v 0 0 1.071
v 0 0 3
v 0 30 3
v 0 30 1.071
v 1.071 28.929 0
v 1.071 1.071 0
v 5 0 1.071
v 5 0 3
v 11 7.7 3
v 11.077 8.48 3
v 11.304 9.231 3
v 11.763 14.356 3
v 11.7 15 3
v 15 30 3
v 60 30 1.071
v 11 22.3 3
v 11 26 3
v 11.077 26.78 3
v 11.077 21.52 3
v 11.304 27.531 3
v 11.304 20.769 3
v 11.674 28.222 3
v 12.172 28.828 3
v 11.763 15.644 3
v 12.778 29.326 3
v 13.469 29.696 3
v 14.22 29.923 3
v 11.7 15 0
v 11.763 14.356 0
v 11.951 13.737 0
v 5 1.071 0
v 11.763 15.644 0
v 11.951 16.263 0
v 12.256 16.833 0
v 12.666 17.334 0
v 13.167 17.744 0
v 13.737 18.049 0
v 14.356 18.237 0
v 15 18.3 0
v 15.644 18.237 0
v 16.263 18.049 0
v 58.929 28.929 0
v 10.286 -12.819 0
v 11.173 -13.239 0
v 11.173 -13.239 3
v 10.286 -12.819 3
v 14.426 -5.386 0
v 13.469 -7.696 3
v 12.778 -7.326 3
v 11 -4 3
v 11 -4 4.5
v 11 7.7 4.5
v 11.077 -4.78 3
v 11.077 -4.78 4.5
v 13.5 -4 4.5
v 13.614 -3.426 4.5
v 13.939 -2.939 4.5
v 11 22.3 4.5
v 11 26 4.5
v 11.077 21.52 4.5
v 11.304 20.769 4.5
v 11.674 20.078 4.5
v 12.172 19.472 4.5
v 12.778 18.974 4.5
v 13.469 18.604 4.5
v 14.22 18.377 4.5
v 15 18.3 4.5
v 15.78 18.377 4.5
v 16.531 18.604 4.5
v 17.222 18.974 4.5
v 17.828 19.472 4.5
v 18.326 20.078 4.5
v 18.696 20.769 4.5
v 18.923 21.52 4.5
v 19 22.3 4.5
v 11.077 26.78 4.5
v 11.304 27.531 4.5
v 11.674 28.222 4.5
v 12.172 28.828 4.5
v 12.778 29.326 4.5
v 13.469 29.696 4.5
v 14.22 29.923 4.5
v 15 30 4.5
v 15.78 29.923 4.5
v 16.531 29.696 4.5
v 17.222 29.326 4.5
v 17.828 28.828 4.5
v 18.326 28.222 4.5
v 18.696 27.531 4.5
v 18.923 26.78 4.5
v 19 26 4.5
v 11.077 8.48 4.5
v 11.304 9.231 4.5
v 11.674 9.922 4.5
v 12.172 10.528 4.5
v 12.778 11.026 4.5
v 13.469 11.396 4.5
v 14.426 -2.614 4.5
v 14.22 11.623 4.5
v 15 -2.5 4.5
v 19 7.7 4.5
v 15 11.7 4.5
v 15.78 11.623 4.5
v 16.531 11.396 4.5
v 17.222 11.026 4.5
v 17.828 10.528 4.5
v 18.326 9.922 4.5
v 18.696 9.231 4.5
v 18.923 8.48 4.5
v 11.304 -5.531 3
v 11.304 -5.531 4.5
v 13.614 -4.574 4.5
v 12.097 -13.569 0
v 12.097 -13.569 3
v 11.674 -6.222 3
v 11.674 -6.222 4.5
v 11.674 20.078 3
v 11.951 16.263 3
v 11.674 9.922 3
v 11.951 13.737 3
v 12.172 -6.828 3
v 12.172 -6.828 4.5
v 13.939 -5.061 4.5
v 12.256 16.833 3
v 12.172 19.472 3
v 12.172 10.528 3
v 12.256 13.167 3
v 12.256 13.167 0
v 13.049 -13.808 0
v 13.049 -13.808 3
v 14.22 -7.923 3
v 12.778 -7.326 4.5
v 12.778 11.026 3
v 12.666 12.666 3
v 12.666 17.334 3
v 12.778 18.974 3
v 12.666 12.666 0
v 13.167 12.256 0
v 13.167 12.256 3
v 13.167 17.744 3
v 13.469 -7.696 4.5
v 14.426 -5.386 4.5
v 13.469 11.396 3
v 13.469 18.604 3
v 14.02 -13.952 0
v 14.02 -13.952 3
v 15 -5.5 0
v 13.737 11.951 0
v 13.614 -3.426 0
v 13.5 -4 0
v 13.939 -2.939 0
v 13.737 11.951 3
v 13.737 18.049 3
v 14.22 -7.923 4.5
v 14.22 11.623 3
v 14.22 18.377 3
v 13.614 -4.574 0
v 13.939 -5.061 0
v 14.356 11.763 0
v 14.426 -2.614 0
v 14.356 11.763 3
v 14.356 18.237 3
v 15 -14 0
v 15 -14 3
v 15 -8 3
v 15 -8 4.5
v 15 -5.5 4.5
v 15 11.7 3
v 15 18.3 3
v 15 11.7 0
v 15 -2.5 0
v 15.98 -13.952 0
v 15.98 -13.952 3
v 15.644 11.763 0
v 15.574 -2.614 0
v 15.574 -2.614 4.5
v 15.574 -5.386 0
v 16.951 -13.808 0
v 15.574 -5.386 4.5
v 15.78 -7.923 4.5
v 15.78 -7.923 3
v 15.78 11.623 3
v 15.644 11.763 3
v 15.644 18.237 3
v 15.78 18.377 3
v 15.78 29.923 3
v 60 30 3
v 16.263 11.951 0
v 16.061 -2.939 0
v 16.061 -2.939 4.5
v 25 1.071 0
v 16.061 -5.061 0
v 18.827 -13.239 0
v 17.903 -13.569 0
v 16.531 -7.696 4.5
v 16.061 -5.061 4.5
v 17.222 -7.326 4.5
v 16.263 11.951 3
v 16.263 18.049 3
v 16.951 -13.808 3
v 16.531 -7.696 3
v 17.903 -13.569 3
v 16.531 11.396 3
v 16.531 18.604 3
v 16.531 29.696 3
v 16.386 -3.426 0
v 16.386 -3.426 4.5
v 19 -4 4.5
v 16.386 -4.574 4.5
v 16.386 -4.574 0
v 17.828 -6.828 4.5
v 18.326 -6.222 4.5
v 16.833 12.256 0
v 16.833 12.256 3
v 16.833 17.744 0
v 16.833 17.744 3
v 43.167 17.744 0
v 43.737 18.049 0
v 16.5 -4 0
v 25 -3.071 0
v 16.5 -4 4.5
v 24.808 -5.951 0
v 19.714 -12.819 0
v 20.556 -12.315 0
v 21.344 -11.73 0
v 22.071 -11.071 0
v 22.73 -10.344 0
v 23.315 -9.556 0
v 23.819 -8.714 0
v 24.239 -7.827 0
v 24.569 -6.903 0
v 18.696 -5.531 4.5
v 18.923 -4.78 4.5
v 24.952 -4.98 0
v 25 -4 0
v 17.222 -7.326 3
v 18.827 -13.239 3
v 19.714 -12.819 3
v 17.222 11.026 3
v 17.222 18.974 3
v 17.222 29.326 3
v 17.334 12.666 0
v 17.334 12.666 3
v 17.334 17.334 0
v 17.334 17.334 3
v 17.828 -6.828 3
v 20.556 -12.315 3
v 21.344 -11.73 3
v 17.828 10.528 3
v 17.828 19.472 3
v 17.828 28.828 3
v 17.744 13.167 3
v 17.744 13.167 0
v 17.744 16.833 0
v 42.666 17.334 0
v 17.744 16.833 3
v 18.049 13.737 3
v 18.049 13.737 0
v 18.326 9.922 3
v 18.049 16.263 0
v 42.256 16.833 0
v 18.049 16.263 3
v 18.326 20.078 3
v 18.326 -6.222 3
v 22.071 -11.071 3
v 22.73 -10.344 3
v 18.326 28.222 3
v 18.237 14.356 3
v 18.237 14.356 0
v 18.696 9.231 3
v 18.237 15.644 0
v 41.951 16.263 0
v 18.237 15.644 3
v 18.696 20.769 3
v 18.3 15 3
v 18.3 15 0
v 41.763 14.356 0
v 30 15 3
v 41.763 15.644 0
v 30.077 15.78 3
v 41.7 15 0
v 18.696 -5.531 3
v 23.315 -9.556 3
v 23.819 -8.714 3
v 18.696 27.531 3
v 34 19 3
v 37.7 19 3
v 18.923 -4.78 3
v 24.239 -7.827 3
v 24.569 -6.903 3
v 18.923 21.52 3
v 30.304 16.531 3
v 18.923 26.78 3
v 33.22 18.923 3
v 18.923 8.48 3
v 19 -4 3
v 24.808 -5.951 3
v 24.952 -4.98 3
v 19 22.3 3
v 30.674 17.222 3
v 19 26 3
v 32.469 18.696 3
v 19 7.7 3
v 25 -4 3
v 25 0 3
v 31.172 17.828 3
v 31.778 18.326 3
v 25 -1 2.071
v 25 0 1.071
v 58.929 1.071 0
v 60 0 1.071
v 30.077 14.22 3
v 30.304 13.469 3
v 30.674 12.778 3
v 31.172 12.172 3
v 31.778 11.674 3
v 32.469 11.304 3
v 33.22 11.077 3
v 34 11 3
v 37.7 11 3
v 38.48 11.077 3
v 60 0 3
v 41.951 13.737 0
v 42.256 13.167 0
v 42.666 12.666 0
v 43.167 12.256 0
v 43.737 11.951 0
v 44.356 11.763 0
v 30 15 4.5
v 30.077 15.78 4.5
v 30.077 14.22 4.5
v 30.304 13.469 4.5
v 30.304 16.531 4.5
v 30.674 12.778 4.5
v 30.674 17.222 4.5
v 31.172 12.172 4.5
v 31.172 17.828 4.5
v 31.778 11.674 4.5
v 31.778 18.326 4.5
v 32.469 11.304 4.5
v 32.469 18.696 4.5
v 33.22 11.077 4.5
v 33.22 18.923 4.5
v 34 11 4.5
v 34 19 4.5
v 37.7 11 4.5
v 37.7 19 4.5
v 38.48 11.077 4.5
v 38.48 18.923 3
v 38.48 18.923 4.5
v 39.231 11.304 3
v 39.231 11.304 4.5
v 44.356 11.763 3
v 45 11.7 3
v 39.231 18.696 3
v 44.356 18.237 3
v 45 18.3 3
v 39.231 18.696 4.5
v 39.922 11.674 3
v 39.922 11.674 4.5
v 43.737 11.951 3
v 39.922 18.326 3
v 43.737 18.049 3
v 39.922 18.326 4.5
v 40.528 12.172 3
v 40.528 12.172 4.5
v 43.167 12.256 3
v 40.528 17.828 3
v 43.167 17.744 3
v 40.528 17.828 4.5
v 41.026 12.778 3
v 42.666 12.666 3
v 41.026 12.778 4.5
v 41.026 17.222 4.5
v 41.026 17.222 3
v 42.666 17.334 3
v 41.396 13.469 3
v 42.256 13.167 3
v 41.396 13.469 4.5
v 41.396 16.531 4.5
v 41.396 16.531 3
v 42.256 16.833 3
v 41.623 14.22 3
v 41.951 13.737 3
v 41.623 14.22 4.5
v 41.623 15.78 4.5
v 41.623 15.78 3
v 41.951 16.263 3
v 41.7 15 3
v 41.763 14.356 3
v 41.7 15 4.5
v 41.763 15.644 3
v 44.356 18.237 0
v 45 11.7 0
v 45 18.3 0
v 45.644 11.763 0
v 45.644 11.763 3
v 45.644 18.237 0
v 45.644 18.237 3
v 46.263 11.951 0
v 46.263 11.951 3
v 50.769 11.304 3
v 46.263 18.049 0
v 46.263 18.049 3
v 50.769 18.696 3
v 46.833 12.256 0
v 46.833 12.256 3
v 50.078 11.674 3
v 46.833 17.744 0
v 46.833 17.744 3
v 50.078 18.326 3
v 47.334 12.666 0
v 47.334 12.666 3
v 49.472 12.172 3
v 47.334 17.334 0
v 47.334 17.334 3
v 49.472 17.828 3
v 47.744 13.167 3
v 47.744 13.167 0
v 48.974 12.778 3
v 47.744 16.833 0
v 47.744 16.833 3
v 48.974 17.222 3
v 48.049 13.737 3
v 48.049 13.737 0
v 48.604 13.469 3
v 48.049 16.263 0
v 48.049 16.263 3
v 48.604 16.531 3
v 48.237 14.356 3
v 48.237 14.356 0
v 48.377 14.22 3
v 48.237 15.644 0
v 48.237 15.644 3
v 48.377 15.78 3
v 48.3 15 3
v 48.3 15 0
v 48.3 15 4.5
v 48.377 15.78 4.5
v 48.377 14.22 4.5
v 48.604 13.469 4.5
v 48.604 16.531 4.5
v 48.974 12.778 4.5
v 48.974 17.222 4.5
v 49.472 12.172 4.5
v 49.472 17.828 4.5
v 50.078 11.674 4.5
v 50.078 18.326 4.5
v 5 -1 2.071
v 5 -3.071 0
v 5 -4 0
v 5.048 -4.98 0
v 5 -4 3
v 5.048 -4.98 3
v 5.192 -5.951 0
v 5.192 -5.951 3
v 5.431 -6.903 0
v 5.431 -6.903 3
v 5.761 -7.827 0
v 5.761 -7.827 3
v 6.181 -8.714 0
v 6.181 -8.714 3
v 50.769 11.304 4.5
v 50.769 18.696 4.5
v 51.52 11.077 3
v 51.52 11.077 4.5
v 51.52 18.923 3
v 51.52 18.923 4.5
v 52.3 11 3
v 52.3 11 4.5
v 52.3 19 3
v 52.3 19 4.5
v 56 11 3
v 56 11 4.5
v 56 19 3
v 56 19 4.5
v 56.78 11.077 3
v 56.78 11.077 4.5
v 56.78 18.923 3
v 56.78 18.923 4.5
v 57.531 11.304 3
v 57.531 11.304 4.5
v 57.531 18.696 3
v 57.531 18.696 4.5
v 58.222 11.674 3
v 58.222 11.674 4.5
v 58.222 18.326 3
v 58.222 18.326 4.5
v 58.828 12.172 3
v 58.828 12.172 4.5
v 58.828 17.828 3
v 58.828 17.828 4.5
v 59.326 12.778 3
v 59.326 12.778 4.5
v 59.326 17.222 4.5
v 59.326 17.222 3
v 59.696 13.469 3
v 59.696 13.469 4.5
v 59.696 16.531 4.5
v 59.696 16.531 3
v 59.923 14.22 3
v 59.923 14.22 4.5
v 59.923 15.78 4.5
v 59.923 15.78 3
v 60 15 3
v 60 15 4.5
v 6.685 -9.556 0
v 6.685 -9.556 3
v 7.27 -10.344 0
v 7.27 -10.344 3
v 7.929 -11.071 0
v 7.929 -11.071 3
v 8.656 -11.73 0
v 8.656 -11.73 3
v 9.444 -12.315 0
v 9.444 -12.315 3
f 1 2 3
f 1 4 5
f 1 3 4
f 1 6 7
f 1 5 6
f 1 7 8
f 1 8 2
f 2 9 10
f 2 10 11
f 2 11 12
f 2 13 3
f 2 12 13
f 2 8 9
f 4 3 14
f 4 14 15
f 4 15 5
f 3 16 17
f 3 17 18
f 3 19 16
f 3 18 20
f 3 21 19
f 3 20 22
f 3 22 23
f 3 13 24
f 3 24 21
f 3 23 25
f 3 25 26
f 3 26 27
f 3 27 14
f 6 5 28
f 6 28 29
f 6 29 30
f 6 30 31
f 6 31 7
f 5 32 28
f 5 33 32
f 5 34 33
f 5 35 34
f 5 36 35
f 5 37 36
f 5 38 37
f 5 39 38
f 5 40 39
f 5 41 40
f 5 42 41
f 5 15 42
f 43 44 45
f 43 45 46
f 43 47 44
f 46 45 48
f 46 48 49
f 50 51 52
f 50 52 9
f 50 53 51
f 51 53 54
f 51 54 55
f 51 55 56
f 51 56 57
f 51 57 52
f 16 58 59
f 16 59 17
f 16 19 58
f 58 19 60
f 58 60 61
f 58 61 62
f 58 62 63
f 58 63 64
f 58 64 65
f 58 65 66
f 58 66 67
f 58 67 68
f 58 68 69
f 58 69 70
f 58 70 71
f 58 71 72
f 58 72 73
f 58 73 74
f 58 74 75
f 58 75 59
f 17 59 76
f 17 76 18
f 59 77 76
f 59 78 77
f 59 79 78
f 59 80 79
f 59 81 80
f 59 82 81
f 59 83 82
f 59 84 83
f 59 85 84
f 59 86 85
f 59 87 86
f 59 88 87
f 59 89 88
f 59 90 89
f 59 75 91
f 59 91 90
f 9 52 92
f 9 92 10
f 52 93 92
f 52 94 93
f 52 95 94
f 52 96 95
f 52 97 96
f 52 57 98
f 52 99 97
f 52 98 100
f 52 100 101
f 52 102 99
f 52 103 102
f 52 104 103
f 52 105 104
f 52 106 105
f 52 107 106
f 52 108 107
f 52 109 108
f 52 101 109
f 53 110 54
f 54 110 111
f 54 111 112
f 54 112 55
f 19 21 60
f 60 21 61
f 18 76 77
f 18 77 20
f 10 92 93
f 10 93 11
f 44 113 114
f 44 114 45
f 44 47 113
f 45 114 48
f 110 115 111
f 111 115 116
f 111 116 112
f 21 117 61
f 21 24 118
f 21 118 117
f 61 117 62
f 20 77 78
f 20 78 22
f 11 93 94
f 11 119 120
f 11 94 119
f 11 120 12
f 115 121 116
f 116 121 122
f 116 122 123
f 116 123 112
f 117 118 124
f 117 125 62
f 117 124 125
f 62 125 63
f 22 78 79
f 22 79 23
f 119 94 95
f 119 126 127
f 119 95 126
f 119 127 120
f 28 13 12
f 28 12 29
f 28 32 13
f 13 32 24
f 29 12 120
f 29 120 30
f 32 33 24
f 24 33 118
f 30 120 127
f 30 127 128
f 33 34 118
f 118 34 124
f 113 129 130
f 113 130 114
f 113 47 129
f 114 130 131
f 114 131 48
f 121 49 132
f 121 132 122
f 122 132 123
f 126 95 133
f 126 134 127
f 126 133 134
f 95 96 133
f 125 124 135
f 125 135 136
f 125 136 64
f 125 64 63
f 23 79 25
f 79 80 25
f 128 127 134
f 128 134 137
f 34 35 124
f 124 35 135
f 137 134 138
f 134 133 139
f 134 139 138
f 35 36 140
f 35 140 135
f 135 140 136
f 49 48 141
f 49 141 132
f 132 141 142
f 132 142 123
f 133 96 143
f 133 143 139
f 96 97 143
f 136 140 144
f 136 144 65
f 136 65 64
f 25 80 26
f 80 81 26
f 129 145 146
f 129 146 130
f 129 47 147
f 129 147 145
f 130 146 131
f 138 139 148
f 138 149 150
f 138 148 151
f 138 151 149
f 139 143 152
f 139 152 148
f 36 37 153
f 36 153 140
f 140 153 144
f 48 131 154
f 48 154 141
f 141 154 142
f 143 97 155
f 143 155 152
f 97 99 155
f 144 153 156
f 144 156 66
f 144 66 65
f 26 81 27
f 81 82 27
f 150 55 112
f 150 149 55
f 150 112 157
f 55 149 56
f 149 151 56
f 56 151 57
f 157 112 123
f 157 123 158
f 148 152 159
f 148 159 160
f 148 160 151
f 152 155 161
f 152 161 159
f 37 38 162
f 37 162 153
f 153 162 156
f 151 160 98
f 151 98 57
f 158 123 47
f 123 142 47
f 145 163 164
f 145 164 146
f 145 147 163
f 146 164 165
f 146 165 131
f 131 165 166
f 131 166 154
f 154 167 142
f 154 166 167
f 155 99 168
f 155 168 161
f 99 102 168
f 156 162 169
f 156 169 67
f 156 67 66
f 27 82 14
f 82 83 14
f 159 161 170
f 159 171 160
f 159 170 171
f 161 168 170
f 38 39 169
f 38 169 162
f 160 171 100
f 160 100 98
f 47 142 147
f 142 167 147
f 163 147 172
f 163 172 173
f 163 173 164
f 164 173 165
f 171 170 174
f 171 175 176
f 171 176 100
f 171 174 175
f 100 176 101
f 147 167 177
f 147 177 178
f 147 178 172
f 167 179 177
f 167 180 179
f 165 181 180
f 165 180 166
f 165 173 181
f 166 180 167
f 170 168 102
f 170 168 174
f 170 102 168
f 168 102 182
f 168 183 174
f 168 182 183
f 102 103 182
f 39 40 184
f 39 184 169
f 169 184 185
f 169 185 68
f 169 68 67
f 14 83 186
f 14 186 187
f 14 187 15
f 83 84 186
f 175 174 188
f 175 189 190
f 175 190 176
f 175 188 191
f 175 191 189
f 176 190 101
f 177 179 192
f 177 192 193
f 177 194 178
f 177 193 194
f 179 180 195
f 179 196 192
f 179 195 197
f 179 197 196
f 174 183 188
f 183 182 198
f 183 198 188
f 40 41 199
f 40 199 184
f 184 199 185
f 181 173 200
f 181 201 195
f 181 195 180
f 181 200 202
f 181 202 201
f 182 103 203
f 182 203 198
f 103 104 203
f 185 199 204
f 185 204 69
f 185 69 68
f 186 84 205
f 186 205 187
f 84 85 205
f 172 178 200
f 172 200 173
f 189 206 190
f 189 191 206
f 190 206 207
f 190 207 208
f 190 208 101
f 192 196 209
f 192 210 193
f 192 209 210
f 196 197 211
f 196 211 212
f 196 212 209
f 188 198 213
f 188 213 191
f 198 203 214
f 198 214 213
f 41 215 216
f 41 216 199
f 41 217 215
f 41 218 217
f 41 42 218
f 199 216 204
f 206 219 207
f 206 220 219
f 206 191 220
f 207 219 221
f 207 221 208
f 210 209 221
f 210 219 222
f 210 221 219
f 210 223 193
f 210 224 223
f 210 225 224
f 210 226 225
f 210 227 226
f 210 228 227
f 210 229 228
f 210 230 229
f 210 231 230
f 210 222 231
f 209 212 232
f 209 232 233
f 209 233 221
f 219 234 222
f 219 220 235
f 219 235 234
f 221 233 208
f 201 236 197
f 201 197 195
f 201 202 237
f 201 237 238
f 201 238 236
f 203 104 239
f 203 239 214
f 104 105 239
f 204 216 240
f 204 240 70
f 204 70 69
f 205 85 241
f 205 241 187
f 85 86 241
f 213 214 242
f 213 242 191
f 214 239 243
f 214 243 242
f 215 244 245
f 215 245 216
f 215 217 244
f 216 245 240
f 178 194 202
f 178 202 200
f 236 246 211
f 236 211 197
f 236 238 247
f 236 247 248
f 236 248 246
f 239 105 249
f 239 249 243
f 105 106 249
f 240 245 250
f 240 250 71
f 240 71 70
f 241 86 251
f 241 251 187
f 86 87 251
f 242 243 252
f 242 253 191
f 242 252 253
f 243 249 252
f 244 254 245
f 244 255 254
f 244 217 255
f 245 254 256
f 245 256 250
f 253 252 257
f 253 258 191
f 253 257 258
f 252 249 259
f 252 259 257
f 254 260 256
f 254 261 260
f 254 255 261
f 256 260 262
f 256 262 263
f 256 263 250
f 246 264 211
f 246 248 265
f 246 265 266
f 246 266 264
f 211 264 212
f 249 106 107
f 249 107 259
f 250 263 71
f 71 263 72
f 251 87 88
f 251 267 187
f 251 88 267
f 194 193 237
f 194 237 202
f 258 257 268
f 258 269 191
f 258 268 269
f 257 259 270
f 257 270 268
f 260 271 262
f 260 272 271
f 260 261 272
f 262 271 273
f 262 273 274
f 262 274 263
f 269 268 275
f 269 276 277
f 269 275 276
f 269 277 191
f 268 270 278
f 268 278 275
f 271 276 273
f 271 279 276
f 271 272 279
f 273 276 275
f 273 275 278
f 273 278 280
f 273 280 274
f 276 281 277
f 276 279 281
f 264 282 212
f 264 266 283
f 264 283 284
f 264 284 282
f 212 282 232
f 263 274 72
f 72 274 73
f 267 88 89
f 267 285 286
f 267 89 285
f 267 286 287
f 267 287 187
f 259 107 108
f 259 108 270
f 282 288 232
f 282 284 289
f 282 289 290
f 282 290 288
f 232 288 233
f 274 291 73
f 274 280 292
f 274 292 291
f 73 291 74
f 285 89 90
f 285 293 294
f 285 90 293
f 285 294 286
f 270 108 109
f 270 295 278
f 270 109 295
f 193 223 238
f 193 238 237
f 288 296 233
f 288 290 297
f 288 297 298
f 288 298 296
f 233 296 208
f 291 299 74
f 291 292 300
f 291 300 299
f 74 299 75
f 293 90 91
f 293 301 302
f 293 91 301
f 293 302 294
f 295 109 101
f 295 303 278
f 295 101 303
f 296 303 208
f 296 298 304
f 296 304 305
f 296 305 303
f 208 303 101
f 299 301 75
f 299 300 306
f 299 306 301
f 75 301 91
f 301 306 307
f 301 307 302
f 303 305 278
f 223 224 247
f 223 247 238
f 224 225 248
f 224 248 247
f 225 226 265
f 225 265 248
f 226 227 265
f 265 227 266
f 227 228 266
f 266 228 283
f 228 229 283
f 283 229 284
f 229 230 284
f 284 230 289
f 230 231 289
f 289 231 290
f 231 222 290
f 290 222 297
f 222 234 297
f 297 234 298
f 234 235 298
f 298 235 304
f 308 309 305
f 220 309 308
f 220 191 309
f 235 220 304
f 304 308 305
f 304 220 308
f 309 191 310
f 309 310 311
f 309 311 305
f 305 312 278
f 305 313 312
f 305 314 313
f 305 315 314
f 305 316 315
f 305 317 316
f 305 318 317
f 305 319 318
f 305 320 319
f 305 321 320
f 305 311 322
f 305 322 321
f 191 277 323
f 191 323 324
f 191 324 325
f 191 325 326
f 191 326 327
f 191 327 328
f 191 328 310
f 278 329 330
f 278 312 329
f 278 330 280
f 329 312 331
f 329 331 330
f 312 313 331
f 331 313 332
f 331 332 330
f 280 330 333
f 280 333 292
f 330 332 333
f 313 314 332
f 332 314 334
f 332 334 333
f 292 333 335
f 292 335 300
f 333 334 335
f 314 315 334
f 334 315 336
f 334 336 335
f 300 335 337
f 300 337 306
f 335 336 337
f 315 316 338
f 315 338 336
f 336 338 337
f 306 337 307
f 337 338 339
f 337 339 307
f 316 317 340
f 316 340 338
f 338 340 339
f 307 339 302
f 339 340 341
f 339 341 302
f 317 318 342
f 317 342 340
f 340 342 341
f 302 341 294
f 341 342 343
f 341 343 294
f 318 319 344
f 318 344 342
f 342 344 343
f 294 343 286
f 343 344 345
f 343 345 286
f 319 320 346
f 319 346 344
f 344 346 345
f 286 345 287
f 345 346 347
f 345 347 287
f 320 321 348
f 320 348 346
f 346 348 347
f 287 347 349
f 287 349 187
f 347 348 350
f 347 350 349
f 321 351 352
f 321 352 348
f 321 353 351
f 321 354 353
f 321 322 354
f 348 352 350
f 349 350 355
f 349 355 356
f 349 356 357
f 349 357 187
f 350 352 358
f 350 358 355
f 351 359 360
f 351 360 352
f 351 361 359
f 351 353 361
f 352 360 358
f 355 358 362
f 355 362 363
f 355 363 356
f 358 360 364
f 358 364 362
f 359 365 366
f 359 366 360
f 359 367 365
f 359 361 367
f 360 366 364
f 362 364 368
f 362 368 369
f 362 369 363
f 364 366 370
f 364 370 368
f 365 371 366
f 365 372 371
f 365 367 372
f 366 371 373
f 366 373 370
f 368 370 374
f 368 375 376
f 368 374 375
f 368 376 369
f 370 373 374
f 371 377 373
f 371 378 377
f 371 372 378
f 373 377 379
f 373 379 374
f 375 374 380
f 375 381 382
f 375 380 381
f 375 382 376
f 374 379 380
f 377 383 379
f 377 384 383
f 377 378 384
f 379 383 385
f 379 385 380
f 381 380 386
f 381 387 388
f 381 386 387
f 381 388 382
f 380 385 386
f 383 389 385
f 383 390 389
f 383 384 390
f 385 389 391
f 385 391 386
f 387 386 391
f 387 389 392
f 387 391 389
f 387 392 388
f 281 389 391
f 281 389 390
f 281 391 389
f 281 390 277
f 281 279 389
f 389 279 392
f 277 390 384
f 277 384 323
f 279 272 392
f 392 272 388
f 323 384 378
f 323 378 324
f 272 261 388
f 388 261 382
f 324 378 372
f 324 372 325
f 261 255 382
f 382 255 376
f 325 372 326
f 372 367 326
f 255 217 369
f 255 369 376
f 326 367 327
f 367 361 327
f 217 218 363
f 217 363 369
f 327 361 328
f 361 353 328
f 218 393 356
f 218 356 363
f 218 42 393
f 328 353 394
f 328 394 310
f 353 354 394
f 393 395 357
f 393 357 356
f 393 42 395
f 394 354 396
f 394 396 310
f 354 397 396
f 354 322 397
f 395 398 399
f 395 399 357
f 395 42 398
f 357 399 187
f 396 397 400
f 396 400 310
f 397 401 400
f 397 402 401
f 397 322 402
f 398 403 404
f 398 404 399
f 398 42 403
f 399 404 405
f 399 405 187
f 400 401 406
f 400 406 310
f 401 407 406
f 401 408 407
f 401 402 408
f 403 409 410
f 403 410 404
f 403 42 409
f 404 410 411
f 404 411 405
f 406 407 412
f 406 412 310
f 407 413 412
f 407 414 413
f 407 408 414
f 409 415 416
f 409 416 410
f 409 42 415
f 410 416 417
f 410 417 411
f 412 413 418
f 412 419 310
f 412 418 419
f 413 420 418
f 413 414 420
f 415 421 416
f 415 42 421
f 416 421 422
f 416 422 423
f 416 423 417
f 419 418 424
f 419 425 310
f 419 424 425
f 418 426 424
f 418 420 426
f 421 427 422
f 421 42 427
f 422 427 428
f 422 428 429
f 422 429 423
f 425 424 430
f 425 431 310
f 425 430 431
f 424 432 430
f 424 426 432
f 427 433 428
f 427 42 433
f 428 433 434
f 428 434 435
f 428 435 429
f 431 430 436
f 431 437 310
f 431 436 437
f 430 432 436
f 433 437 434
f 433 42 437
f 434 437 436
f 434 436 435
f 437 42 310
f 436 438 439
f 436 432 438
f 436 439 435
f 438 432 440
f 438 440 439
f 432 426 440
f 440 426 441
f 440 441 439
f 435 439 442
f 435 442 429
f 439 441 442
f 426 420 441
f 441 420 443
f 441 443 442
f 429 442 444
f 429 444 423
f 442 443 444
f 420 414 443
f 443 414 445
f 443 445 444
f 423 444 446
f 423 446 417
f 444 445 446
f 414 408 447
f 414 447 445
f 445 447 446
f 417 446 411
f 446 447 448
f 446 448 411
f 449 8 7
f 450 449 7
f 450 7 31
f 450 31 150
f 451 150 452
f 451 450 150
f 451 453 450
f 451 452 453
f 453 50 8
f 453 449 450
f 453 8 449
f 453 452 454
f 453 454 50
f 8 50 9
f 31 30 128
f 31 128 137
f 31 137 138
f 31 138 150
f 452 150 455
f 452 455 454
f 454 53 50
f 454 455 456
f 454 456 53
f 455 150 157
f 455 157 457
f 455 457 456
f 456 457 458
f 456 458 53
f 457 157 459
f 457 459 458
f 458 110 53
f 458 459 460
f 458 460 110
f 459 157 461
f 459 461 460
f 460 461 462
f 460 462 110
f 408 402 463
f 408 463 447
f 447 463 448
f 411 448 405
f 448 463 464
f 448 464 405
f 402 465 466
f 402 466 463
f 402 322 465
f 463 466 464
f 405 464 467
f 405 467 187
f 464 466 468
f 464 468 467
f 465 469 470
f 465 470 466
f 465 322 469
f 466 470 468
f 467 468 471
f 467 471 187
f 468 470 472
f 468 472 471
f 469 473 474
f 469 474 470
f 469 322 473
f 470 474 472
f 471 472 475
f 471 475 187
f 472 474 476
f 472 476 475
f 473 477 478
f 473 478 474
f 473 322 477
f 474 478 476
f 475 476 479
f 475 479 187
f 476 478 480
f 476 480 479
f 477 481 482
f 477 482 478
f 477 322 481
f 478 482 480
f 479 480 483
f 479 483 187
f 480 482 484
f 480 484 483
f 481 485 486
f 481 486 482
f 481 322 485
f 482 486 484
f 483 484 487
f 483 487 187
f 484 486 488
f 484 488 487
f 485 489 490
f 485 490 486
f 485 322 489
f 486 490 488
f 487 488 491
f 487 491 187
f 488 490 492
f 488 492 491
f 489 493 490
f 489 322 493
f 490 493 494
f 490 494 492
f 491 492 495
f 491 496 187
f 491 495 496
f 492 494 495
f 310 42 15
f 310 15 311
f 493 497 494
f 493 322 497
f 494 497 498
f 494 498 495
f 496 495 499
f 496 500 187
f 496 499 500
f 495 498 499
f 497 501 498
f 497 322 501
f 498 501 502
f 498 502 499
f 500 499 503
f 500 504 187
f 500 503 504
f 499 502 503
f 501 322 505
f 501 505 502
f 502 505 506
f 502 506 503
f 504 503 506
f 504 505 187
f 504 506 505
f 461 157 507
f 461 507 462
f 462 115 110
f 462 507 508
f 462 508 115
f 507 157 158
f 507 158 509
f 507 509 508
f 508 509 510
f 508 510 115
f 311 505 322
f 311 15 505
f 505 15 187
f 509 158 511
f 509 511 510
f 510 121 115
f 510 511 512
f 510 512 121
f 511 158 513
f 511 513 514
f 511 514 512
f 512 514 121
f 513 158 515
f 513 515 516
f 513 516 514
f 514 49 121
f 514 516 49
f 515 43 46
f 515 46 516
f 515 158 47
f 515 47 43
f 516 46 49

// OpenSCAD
// file: ../incude/configuration.scad
// Layer high for the printing [mm]
layer_height = 0.20; //Slic3r->Print Settings->Layers and perimeters->Layer height

// Spare for the screws heads [mm]
spare = 0.75;
// M6 screw diameter [mm]
M6_head_diameter = 13.6+spare;
//M6_head_diameter = 10.6+spare;
//M6_head_diameter = 12+spare;

// M6 head high (for hiding it) [mm]
//M6_head_height = 4;
M6_head_height = 3.6;
//M6_head_height = 4.5;

// Screws and rods diameters
M8_smooth_rod_diameter = 8.3;
M8_smooth_rod_diameter_catch = 8.4;
// Prumer 8mm tyce
rod_8mm_d = 8.2; //pro dil z-top
M6_diameter = 6.6;
M6_dia=M6_diameter; //pro dil z-top
M6_diamater_horizontal = 6.5;
M3_diameter = 3.7;
M3_diameter_horizontal = 3.5;

//matice trapézové tyče
TRAP_diameter_externa=22; //průmer vnější 


// Nuts diameters
M3_nut_diameter = 7.0;
M3_nut_diameter_horizontal = 6.7;

// ALU profile parameters
ALU_cut_width = 7.9;
ALU_cut_width_horizontal = 7.7;

// Sirka matky do profilu (pokud neni pouzita, tak 0)
//profile_nut_width = 9.5;
profile_nut_width = 0; //pro z-top

// Motors length/depth (for axes Z and Y)
//SX17-1003LQFE (recommended for the Z axis)
motor_length = 29.5;
//SX17-1003 (recommended for the Z axis)
//motor_length = 34;
//SX17-1005
//motor_length = 40;
//SX17-0905 - this motor is too high - the Z end stop holder has to be adjusted
//motor_length = 48;

// Extrusion width [mm]
extrusion_width = 0.66; //Slic3r->Print Settings->Advanced->Default extrusion width

/// Belt type ******************************************************

// GT2 
/*belt_tooth_distance = 2;
belt_tooth_ratio = 0.5;
belt_tooth_height = 1.4;
belt_thickness = 2.3;
*/

// T2.5
belt_tooth_distance = 2.5;
belt_tooth_ratio = 0.5;


// Tloustka rohovych spojek
// 5 mm => sroub M6x14 s podlozkou
// 3 mm => sroub M6x12 s podlozkou
coupler_thickness = 3;
// main file
// RebeliX
//
// corner-coupler-bottom
// GNU GPL v3
// Martin Neruda <neruda@reprap4u.cz>
// http://www.reprap4u.cz
// Inspired by Rebel II

include <../incude/configuration.scad>

// Prumer pristrojove gumove nozicky
rubber_feet_d = 20;

module drazka()
{
  distance = M6_dia >= profile_nut_width ? M6_dia : profile_nut_width;
  
  translate([-30/2+4,0,0]) cylinder(r=4,h=coupler_thickness+1.5,$fn=32,center=true);
  translate([-distance/2-4,0,0]) cylinder(r=4,h=coupler_thickness+1.5,$fn=32,center=true);
  translate([-distance/4 - 7.5,0,0]) cube([7 - distance/2,8,coupler_thickness+1.5],center=true);
	
  translate([30/2-4,0,0])cylinder(r=4,h=coupler_thickness+1.5,$fn=32,center=true);
  translate([distance/2+4,0,0])cylinder(r=4,h=coupler_thickness+1.5,$fn=32,center=true);
  translate([distance/4 + 7.5,0,0]) cube([7 - distance/2,8,coupler_thickness+1.5],center=true);
}

module corner_coupler_bottom()
{
  difference()
  {
	union()
	{
	  cube([60,30,coupler_thickness]);
	  translate([15,30/2,(coupler_thickness+1.5)/2]) rotate([0,0,90]) drazka();
	  translate([45,30/2,(coupler_thickness+1.5)/2]) drazka();
	  translate([15,15-9-rubber_feet_d/2,0]) cylinder(r=rubber_feet_d/2,h=coupler_thickness,$fn=64);
	  translate([15,15-9,coupler_thickness/2]) cube([rubber_feet_d,rubber_feet_d,coupler_thickness],center=true);
	  translate([15,15-9-rubber_feet_d/2,0]) cylinder(r=4,h=coupler_thickness+1.5,$fn=32);
	  translate([15-4,15-9-rubber_feet_d/2,0]) cube([8,rubber_feet_d/2,coupler_thickness+1.5]);
	}
		
	// Otvory pro srouby
	translate([15,30/2,0])cylinder(h=20,r=M6_dia/2,$fn=32,center=true);
	translate([45,30/2,0])cylinder(h=20,r=M6_dia/2,$fn=32,center=true);
	translate([15,15-9-rubber_feet_d/2,0]) cylinder(r=1.5,h=20,$fn=16,center=true);
		
	// Zalomene hrany
	translate([-1,-0.1,-5]) rotate([0,-45,0]) cube([5,40,5]);
	translate([61,-0.1,-5]) rotate([0,-45,0]) cube([5,40,5]);
	translate([15+rubber_feet_d/2,-1,-5]) rotate([45,0,0]) cube([70,5,5]);
	translate([15-rubber_feet_d/2,-1,-5]) rotate([45,0,180]) cube([70,5,5]);
	translate([-0.1,31,-5]) rotate([45,0,0]) cube([70,5,5]);
  }
}

corner_coupler_bottom();
